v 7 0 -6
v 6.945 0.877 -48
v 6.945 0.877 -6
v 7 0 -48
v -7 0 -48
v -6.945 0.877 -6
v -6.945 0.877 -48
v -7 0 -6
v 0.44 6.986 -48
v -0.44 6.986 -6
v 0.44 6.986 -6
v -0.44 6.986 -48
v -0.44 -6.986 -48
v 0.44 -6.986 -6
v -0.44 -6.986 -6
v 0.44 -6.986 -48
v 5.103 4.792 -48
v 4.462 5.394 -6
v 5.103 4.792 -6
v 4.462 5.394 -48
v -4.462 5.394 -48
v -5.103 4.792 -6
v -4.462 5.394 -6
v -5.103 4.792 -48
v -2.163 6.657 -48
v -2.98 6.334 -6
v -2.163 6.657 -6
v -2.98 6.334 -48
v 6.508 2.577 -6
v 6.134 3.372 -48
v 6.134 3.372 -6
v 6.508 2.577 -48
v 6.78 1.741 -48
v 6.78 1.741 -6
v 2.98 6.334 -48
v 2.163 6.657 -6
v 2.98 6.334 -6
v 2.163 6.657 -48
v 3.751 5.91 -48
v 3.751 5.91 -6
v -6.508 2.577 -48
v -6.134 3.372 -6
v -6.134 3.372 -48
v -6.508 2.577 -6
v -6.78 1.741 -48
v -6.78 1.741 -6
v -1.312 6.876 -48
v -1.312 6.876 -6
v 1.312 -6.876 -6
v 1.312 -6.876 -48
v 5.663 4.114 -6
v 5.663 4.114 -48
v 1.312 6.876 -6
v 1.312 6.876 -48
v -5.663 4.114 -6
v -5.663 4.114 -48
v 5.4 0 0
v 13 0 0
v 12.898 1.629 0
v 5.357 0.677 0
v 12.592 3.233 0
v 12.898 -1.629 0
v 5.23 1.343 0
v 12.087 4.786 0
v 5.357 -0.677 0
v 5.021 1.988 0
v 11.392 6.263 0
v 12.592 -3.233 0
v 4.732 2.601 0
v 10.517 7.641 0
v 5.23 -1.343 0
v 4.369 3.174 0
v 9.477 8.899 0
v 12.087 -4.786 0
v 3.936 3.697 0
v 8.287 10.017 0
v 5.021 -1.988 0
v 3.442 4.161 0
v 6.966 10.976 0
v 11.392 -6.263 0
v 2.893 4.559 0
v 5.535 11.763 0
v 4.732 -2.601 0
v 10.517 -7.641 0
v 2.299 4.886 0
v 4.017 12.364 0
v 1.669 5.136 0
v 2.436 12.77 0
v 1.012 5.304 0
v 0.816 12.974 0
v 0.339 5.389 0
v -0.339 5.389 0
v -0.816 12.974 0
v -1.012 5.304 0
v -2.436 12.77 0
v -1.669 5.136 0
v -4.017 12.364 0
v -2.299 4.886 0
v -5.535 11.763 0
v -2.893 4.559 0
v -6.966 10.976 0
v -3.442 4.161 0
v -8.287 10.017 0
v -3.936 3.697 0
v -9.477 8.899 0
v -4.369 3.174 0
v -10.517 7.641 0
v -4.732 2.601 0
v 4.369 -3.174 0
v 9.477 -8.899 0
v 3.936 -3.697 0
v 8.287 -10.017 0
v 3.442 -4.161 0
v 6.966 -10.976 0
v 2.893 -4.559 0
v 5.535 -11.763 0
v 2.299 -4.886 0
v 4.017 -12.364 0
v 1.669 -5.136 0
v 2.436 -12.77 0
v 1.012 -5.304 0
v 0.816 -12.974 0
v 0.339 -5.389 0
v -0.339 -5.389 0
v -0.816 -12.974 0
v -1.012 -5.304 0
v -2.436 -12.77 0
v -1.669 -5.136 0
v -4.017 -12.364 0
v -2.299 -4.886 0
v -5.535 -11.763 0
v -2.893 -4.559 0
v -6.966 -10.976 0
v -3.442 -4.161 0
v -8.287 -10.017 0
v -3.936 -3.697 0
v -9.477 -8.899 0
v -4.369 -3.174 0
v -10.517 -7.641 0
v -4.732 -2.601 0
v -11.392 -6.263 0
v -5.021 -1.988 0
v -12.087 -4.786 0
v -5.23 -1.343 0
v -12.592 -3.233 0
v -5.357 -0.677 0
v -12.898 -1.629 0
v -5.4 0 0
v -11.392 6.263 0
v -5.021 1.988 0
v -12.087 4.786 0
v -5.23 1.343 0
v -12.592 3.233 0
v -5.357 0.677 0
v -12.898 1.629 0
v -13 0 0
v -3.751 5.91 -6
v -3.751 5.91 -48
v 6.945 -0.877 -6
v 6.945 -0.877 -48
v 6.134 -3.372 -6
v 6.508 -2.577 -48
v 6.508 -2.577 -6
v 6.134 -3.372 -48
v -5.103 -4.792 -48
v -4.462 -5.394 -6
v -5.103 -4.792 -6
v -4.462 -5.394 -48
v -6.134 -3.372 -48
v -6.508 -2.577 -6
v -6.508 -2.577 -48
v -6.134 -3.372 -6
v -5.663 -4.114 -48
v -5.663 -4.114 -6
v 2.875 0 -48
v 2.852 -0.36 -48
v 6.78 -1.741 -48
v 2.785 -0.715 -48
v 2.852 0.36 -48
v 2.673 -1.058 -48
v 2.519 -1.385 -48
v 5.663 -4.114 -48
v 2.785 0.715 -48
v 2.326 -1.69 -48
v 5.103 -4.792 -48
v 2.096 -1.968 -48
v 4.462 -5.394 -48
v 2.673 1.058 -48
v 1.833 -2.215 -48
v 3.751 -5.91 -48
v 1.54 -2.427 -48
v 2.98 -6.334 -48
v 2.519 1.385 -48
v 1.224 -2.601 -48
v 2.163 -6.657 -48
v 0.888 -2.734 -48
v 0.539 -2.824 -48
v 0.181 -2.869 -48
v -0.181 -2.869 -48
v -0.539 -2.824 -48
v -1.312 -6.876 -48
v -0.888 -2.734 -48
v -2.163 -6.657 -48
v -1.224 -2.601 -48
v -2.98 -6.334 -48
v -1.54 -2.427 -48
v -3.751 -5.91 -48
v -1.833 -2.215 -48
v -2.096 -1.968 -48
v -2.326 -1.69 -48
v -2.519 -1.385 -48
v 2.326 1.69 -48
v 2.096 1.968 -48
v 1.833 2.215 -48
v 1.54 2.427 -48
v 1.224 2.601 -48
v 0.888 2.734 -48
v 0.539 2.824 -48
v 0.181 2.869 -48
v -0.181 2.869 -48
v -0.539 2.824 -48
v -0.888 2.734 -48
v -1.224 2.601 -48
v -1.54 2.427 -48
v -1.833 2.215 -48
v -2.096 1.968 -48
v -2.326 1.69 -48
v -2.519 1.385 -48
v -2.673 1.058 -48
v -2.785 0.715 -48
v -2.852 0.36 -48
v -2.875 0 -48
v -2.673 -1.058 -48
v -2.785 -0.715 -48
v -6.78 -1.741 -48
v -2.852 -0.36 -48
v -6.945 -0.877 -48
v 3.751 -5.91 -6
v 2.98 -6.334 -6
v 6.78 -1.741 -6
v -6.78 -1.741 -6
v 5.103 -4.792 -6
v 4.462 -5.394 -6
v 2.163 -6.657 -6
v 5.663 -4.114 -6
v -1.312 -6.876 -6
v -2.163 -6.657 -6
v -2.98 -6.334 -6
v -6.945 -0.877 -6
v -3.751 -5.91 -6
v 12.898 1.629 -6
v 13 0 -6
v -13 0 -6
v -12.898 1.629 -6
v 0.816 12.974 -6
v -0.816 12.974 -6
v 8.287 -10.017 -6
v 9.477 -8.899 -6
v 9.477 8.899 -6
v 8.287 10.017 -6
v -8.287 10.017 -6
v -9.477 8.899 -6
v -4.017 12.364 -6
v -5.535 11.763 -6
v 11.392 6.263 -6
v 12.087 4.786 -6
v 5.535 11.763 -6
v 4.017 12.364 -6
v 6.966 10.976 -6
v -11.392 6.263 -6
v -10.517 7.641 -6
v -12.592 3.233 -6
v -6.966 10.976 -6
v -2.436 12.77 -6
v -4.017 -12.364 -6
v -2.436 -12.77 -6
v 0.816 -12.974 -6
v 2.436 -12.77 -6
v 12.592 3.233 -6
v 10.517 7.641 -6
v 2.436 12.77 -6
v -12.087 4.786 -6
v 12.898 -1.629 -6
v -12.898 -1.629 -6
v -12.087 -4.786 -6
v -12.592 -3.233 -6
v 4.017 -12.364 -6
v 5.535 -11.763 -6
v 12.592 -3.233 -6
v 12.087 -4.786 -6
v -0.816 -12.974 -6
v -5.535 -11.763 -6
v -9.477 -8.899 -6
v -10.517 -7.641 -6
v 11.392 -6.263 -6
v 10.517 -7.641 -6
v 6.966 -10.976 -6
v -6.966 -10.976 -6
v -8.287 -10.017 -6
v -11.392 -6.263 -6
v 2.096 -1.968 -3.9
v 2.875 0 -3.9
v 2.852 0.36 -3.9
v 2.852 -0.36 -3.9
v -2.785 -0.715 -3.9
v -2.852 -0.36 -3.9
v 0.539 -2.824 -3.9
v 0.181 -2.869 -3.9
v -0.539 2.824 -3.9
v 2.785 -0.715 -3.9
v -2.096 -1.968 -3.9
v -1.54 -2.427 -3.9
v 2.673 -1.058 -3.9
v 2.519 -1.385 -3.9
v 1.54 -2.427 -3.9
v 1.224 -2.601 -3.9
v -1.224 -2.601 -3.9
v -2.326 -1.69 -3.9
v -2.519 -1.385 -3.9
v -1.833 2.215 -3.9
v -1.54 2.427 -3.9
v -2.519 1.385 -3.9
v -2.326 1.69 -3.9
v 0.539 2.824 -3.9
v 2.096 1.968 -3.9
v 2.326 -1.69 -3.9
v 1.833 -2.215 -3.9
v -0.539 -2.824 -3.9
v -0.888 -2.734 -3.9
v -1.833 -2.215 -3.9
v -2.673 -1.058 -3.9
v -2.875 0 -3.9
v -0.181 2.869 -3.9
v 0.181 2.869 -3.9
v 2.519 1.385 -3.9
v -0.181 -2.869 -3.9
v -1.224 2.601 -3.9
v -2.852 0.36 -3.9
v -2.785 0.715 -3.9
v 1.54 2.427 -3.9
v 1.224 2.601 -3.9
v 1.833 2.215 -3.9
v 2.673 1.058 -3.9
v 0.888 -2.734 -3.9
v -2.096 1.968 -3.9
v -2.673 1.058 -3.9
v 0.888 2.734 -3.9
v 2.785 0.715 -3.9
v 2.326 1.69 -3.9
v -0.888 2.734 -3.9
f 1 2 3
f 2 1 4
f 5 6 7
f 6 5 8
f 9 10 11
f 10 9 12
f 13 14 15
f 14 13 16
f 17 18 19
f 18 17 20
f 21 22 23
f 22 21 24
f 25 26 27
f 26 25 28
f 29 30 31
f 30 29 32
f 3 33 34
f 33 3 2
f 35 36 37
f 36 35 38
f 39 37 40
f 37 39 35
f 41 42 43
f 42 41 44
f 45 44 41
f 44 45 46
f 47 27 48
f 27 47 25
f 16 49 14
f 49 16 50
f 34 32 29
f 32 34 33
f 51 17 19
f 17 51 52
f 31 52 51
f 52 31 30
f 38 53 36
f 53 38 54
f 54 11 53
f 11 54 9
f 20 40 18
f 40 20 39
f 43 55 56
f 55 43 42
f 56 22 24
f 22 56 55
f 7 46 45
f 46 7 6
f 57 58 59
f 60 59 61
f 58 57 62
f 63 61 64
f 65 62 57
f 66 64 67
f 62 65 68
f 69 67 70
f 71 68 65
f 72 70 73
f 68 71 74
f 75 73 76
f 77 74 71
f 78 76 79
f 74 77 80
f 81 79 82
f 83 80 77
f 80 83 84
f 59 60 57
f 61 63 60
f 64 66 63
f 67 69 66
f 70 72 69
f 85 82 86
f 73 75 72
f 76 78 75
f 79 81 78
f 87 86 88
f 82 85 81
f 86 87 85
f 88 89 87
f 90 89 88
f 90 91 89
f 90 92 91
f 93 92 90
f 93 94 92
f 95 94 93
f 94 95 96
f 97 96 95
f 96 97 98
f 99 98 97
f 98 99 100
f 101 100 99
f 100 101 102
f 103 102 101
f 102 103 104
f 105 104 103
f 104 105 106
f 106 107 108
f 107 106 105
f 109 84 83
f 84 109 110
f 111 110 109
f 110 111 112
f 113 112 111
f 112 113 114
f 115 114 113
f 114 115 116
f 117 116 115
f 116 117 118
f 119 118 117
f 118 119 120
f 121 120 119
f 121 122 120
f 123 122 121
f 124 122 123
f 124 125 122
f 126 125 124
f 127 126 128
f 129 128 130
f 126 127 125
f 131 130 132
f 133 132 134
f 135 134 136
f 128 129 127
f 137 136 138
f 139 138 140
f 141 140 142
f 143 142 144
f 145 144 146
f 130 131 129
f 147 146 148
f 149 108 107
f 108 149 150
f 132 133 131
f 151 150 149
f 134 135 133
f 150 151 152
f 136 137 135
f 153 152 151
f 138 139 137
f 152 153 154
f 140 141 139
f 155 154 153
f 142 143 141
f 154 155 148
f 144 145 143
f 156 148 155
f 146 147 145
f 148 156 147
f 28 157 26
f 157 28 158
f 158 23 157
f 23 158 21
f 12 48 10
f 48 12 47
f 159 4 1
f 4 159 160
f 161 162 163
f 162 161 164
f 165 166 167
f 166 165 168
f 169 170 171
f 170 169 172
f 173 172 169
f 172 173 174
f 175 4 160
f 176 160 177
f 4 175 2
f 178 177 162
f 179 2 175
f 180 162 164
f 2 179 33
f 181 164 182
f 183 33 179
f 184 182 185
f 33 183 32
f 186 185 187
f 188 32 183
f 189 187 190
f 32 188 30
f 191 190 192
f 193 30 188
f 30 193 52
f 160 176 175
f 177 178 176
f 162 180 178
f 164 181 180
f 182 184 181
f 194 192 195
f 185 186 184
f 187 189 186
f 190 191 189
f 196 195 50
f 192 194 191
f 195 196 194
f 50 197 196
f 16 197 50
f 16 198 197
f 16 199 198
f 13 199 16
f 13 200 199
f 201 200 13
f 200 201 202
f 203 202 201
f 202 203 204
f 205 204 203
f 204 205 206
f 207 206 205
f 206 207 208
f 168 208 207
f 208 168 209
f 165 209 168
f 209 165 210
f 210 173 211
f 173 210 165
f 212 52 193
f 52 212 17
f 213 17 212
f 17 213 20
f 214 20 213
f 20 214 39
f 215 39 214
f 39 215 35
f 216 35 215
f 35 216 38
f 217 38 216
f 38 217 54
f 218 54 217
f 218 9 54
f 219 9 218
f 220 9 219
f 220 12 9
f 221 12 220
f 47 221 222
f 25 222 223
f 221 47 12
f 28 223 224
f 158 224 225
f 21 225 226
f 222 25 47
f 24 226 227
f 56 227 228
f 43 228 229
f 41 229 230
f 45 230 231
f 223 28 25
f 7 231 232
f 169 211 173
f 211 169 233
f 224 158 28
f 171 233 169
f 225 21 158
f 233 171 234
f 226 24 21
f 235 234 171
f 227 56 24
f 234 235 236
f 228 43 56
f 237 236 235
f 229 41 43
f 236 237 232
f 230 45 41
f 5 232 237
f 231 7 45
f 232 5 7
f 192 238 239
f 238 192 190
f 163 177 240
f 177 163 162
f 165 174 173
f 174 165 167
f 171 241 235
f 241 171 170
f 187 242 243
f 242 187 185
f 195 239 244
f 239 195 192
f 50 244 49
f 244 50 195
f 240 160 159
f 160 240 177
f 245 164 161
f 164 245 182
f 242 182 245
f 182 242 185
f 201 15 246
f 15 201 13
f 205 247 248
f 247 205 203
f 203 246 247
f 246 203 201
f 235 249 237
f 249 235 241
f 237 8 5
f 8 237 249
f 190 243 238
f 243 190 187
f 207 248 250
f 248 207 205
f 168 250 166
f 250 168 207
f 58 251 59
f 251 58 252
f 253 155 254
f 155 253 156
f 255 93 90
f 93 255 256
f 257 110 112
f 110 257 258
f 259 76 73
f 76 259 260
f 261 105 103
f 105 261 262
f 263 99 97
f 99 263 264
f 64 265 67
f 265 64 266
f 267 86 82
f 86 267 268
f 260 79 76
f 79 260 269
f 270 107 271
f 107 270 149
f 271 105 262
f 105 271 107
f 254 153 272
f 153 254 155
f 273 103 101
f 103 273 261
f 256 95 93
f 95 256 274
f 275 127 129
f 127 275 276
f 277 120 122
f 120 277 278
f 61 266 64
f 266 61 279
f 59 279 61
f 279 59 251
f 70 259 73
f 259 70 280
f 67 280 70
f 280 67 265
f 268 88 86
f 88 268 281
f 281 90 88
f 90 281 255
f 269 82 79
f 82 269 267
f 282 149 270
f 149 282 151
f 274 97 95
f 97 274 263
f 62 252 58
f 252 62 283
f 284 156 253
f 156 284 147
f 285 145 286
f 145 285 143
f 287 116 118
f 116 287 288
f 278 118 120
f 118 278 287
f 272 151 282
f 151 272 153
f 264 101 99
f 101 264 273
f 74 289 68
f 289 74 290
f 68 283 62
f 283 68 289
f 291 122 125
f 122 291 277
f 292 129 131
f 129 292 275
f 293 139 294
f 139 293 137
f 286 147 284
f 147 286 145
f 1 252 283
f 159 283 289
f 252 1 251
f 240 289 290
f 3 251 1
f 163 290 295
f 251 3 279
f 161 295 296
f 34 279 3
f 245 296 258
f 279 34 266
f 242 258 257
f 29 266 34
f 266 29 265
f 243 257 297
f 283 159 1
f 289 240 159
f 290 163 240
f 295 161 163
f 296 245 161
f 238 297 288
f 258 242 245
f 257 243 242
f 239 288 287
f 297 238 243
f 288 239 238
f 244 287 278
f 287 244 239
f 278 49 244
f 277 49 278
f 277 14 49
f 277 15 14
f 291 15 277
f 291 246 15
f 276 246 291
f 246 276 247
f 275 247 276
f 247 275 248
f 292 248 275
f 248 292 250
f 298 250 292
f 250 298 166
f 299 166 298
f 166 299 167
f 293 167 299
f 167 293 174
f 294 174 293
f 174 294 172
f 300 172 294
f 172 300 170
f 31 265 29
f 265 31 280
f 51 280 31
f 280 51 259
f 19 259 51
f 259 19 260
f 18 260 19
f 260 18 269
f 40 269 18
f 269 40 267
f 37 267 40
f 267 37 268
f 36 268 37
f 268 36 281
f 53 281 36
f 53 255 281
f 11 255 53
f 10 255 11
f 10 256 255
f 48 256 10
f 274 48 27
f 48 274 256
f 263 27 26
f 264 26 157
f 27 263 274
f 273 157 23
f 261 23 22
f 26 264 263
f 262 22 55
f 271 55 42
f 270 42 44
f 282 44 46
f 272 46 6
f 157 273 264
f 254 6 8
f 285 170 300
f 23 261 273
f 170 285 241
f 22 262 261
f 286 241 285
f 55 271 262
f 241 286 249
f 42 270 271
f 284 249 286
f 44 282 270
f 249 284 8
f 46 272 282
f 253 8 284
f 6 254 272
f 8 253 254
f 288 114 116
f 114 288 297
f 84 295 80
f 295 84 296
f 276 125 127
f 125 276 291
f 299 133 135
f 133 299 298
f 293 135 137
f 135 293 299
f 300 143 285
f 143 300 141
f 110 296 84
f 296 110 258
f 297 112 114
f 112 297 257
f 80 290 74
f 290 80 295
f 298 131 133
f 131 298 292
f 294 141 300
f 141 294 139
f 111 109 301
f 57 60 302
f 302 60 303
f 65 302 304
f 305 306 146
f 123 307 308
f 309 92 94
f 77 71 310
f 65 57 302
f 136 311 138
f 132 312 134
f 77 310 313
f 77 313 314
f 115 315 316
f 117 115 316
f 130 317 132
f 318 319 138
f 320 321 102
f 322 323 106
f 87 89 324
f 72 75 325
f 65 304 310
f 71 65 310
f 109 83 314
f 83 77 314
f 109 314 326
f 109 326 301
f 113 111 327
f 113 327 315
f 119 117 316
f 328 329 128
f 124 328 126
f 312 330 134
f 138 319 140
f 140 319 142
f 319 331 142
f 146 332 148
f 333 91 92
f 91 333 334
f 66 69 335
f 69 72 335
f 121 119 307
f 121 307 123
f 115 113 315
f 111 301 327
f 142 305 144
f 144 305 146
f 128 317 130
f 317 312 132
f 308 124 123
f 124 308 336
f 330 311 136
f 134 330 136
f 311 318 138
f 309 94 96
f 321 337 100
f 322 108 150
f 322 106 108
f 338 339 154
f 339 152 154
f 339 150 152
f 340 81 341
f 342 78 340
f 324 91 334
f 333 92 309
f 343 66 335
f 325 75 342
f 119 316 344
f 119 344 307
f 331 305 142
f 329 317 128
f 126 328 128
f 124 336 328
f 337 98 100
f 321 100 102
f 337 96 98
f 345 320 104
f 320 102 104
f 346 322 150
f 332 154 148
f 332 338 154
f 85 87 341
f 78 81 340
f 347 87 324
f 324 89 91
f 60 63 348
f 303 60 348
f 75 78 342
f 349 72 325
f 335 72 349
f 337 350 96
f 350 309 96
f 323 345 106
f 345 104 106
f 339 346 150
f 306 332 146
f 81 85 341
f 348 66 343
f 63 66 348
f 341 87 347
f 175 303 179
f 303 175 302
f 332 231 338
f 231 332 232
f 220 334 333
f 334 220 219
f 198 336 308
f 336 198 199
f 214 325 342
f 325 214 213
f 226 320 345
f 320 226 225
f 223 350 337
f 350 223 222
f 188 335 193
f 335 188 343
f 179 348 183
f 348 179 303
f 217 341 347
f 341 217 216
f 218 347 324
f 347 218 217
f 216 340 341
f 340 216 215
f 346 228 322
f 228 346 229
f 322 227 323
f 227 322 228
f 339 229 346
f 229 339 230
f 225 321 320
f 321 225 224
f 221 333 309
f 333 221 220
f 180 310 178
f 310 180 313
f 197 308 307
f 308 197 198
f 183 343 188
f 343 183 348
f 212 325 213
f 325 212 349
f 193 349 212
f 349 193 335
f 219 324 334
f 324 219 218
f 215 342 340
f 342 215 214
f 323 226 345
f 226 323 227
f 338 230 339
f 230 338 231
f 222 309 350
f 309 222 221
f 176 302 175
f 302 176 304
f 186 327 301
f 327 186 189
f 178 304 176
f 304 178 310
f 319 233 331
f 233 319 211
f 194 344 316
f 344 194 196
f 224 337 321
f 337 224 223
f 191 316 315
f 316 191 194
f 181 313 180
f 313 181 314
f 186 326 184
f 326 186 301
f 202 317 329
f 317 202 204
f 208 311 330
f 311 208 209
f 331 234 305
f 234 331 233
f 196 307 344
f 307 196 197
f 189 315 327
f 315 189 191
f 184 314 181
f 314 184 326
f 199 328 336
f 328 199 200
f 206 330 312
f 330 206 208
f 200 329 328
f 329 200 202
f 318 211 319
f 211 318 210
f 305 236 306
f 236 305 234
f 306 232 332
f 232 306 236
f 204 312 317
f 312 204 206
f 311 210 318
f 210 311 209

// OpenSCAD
$fn = 50;


difference() {
	union() {
		translate(v = [0, 0, -48.0000000000]) {
			cylinder(h = 48, r = 7.0000000000);
		}
		translate(v = [0, 0, -6.0000000000]) {
			cylinder(h = 6, r = 13.0000000000);
		}
	}
	union() {
		translate(v = [0, 0, 0]) {
			rotate(a = [0, 0, 0]) {
				difference() {
					union() {
						#translate(v = [0, 0, -48.0000000000]) {
							cylinder(h = 48, r = 2.6000000000);
						}
						#translate(v = [0, 0, -3.9000000000]) {
							cylinder(h = 3.9000000000, r = 7.0000000000, r1 = 2.8750000000, r2 = 5.4000000000);
						}
						#translate(v = [0, 0, -48.0000000000]) {
							cylinder(h = 48, r = 2.8750000000);
						}
						#translate(v = [0, 0, -48.0000000000]) {
							cylinder(h = 48, r = 2.6000000000);
						}
					}
					union();
				}
			}
		}
	}
}
